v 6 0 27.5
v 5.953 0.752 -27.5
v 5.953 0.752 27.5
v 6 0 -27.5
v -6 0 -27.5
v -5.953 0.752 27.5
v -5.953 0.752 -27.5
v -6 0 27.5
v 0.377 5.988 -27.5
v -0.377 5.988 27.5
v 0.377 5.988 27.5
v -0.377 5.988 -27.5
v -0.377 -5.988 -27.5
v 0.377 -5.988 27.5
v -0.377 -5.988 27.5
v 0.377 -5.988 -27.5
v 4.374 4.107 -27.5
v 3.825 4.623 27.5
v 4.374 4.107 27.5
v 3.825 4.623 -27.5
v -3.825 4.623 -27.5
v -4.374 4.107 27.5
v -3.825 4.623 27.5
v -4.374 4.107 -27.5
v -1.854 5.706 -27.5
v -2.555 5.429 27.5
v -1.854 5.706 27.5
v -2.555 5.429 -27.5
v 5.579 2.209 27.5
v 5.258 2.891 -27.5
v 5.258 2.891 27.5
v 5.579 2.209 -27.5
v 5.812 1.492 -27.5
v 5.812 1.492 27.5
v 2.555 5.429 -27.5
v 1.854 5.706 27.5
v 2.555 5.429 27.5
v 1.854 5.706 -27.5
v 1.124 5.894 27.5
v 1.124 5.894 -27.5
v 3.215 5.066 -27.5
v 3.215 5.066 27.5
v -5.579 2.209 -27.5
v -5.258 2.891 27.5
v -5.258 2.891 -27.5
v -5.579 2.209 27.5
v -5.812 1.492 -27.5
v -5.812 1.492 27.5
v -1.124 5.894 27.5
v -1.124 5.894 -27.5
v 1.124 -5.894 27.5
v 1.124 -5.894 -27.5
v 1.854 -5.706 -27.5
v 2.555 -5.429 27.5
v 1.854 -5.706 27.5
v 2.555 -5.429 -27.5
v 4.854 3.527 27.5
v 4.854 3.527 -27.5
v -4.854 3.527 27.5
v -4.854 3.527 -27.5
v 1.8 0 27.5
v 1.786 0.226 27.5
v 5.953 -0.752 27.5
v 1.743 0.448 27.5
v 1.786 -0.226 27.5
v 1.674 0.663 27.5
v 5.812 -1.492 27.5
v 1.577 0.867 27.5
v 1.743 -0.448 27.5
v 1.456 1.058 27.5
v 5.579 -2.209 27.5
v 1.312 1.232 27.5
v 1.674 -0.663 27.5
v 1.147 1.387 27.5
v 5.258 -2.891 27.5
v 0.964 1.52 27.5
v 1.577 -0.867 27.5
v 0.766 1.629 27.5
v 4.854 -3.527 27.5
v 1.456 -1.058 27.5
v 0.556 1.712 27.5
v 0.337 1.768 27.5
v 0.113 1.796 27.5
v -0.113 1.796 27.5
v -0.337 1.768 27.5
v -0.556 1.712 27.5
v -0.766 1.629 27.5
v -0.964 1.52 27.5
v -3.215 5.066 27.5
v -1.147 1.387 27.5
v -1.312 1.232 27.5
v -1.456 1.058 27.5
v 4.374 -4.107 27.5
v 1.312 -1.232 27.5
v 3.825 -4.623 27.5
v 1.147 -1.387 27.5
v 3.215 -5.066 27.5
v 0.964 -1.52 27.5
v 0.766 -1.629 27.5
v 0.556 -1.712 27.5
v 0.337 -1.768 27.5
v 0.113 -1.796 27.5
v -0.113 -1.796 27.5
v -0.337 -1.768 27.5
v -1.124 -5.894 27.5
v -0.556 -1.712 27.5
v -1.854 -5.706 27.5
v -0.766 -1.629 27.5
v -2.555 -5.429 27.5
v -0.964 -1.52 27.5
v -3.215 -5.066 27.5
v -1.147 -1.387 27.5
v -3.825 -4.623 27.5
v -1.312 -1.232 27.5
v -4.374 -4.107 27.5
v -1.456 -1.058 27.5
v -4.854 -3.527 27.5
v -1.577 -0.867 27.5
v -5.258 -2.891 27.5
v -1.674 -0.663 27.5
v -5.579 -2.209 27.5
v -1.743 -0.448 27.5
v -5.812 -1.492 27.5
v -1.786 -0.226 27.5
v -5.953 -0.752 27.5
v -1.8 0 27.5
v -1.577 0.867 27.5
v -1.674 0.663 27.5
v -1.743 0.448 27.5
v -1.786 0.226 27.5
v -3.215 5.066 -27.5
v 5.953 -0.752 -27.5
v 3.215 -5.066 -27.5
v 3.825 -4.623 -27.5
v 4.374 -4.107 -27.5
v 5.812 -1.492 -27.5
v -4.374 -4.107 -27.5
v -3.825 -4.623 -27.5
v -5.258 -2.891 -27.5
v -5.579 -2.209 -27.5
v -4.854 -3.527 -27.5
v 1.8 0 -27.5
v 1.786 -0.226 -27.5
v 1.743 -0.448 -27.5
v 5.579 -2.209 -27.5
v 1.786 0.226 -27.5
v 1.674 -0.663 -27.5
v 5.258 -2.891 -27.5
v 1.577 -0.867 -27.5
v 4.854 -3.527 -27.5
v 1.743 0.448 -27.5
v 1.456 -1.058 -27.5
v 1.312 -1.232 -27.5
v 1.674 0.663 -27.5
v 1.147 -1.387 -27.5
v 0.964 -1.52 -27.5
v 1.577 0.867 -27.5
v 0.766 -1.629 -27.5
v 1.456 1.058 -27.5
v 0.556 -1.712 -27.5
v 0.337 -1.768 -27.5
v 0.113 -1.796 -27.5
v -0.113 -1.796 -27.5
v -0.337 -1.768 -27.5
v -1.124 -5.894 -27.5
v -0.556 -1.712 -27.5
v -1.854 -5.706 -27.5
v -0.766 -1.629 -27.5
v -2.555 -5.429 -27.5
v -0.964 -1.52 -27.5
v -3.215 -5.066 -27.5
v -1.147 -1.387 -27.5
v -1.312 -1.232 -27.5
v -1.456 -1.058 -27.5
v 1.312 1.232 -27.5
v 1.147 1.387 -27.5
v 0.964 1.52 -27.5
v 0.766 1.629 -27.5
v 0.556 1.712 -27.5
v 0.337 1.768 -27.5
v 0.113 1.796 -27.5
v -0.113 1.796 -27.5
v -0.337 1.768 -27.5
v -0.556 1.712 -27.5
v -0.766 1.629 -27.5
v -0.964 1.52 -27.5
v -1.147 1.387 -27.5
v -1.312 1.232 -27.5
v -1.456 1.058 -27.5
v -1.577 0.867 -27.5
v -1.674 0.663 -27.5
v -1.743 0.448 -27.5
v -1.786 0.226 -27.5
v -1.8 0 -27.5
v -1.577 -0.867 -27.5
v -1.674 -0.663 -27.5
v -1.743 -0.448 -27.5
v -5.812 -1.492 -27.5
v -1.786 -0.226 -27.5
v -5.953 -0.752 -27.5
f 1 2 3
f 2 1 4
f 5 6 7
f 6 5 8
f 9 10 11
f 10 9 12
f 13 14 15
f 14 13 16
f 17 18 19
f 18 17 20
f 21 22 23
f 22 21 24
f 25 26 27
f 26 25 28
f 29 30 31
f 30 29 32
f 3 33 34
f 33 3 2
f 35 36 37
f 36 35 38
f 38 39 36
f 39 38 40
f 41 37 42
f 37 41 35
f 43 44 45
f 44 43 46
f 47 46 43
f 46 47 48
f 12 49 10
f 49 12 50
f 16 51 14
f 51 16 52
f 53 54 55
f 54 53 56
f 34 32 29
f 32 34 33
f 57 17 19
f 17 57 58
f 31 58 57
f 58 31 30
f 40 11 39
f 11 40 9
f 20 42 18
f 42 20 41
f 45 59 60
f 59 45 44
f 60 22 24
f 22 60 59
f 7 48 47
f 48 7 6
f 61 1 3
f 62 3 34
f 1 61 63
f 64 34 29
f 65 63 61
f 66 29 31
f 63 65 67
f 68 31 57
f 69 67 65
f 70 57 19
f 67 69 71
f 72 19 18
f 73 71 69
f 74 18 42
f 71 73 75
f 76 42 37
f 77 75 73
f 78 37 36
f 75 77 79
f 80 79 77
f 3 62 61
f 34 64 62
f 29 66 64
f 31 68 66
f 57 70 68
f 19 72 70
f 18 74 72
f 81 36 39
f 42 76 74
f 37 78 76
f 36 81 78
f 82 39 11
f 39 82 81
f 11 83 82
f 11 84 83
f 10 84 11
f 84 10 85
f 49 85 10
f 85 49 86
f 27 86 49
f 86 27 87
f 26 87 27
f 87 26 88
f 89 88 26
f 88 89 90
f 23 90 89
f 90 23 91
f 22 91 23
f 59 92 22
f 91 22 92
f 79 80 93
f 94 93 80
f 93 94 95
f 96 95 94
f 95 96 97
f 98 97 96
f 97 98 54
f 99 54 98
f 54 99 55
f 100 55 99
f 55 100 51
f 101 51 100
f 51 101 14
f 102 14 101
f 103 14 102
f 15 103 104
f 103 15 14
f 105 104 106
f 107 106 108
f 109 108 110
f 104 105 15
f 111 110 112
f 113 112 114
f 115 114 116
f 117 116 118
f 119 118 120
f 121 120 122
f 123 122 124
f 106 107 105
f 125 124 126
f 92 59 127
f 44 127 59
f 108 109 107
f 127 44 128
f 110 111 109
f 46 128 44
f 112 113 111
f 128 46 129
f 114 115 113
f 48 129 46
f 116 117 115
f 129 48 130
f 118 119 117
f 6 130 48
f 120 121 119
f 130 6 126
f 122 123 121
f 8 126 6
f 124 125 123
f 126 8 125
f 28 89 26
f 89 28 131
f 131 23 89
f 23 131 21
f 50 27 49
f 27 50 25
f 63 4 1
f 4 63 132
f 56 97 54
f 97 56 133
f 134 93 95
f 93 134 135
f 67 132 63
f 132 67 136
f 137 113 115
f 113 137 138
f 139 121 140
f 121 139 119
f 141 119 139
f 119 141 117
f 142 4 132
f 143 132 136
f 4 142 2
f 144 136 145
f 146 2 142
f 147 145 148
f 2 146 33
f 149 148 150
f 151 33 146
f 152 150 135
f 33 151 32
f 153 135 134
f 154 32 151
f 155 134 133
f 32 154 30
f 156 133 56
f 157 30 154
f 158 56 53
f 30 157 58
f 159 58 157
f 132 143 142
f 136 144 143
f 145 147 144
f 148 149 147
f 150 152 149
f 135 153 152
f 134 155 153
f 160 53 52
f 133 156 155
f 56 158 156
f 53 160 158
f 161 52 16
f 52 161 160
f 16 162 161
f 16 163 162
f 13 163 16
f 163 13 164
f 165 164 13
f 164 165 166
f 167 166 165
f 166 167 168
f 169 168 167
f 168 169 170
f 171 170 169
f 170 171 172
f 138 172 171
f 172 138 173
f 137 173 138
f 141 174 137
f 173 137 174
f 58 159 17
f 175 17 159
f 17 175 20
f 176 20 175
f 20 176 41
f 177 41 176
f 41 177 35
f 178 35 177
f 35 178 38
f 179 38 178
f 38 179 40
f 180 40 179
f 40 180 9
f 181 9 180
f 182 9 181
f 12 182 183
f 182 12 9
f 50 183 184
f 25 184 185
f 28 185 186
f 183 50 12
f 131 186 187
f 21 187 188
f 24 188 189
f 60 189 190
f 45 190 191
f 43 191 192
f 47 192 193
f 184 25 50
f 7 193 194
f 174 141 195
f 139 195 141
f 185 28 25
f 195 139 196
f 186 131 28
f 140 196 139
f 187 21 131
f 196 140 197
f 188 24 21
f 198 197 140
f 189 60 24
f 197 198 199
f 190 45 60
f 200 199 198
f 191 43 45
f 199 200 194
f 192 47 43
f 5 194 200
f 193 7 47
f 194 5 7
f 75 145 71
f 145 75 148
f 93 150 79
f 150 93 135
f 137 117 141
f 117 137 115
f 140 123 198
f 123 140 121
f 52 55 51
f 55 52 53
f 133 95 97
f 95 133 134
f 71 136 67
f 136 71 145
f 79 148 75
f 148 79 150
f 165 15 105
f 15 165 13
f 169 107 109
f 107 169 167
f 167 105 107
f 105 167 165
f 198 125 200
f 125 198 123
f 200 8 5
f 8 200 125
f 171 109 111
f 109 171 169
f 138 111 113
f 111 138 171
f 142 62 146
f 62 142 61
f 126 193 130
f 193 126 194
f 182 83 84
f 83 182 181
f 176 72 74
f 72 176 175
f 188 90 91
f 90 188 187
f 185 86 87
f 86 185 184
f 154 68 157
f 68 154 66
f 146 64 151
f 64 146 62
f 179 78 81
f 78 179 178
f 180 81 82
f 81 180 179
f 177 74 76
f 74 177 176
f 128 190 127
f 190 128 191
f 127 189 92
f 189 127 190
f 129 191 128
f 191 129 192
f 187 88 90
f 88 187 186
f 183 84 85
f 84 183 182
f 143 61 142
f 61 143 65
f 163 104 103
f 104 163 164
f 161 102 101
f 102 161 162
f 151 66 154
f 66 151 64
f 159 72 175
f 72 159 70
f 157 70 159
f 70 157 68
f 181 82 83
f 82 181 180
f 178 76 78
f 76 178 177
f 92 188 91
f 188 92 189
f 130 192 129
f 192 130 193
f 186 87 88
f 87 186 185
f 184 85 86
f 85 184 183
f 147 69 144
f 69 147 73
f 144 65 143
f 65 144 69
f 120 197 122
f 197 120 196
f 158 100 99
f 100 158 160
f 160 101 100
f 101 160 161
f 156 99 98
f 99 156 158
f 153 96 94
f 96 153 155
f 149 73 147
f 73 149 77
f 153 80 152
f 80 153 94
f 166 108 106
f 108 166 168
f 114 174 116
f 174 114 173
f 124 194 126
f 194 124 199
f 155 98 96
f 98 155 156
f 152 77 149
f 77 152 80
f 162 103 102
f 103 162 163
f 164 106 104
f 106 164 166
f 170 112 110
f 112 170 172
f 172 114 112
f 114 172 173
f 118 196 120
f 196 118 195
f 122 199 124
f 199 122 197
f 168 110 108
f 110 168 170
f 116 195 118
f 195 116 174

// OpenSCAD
$fn = 50;


difference() {
	union() {
		translate(v = [0, 0, -27.5000000000]) {
			cylinder(h = 55, r = 6.0000000000);
		}
	}
	union() {
		translate(v = [0, 0, -100.0000000000]) {
			cylinder(h = 200, r = 1.8000000000);
		}
	}
}
